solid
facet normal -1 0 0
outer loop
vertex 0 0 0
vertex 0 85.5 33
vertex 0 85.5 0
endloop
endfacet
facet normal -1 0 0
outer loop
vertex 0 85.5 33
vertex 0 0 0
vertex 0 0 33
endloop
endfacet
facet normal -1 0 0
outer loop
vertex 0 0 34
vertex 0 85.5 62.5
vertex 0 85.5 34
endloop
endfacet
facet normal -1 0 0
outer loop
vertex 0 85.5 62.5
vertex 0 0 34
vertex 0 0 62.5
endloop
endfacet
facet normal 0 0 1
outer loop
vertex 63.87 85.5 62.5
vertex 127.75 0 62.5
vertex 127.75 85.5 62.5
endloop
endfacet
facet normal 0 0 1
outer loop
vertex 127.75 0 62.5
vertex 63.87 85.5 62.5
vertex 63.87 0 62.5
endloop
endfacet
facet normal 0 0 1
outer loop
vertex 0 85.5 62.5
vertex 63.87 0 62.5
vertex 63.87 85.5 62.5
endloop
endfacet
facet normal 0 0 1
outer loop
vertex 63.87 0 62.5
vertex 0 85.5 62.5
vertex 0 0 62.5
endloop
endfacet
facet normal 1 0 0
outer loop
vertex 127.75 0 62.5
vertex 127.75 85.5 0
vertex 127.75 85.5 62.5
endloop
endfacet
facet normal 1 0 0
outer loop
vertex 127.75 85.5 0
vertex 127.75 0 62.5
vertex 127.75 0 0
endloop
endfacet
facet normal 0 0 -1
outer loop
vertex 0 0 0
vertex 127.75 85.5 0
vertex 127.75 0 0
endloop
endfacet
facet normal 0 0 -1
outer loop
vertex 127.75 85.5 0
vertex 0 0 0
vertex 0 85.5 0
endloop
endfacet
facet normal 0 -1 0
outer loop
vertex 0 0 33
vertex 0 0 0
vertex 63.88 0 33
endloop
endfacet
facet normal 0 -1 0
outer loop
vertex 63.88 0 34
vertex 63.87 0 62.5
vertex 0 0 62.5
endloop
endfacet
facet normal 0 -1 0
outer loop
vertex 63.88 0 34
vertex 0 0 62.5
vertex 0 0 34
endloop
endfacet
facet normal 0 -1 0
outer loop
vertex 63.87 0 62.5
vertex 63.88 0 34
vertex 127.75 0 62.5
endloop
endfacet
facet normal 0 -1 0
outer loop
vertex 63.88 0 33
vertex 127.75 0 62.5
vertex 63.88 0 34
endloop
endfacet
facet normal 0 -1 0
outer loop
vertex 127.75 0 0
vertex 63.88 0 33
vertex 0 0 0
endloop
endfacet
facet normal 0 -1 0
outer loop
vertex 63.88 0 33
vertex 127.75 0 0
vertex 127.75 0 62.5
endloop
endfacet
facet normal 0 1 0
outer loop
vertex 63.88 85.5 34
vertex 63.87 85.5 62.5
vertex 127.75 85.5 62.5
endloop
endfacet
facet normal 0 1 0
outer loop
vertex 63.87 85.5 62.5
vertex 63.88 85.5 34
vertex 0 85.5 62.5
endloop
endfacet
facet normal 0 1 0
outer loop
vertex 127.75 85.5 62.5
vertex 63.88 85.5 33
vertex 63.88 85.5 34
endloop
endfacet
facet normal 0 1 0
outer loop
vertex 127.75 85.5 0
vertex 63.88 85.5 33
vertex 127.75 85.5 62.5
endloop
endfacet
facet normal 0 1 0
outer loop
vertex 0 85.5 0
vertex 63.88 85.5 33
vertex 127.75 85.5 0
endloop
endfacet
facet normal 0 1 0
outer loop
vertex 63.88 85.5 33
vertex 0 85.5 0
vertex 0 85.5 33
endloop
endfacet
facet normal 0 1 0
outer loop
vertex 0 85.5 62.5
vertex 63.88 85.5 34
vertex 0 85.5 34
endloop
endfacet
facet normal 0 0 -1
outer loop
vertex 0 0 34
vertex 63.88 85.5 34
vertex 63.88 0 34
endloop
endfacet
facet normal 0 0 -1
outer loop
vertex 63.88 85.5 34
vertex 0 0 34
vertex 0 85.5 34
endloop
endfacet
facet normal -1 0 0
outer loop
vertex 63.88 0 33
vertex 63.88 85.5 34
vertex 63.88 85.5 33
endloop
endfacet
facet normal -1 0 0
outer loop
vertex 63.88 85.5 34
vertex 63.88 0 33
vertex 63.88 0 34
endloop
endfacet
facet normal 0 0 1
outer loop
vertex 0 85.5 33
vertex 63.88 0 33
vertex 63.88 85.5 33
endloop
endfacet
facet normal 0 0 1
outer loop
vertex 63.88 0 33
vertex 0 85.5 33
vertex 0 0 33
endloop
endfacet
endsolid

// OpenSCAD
// Opentrons Calibration Block - Short Side: Left
// loadName: opentrons_calibrationblock_short_side_left
// Auto-generated by labware_to_stl.py from Opentrons V2 labware definition

$fn = 64;

difference() {
    // ── Labware body ──────────────────────────────────────────────
    cube([127.7500, 85.5000, 62.5000]);

    // ── Well cutouts ──────────────────────────────────────────────
    // Well A1
    translate([0.0000, 0.0000, 33.0000])
        cube([63.8800, 85.5000, 1.0000]);
    // Well A2
    translate([63.8700, 0.0000, 62.5000])
        cube([63.8800, 85.5000, 1.0000]);
}
